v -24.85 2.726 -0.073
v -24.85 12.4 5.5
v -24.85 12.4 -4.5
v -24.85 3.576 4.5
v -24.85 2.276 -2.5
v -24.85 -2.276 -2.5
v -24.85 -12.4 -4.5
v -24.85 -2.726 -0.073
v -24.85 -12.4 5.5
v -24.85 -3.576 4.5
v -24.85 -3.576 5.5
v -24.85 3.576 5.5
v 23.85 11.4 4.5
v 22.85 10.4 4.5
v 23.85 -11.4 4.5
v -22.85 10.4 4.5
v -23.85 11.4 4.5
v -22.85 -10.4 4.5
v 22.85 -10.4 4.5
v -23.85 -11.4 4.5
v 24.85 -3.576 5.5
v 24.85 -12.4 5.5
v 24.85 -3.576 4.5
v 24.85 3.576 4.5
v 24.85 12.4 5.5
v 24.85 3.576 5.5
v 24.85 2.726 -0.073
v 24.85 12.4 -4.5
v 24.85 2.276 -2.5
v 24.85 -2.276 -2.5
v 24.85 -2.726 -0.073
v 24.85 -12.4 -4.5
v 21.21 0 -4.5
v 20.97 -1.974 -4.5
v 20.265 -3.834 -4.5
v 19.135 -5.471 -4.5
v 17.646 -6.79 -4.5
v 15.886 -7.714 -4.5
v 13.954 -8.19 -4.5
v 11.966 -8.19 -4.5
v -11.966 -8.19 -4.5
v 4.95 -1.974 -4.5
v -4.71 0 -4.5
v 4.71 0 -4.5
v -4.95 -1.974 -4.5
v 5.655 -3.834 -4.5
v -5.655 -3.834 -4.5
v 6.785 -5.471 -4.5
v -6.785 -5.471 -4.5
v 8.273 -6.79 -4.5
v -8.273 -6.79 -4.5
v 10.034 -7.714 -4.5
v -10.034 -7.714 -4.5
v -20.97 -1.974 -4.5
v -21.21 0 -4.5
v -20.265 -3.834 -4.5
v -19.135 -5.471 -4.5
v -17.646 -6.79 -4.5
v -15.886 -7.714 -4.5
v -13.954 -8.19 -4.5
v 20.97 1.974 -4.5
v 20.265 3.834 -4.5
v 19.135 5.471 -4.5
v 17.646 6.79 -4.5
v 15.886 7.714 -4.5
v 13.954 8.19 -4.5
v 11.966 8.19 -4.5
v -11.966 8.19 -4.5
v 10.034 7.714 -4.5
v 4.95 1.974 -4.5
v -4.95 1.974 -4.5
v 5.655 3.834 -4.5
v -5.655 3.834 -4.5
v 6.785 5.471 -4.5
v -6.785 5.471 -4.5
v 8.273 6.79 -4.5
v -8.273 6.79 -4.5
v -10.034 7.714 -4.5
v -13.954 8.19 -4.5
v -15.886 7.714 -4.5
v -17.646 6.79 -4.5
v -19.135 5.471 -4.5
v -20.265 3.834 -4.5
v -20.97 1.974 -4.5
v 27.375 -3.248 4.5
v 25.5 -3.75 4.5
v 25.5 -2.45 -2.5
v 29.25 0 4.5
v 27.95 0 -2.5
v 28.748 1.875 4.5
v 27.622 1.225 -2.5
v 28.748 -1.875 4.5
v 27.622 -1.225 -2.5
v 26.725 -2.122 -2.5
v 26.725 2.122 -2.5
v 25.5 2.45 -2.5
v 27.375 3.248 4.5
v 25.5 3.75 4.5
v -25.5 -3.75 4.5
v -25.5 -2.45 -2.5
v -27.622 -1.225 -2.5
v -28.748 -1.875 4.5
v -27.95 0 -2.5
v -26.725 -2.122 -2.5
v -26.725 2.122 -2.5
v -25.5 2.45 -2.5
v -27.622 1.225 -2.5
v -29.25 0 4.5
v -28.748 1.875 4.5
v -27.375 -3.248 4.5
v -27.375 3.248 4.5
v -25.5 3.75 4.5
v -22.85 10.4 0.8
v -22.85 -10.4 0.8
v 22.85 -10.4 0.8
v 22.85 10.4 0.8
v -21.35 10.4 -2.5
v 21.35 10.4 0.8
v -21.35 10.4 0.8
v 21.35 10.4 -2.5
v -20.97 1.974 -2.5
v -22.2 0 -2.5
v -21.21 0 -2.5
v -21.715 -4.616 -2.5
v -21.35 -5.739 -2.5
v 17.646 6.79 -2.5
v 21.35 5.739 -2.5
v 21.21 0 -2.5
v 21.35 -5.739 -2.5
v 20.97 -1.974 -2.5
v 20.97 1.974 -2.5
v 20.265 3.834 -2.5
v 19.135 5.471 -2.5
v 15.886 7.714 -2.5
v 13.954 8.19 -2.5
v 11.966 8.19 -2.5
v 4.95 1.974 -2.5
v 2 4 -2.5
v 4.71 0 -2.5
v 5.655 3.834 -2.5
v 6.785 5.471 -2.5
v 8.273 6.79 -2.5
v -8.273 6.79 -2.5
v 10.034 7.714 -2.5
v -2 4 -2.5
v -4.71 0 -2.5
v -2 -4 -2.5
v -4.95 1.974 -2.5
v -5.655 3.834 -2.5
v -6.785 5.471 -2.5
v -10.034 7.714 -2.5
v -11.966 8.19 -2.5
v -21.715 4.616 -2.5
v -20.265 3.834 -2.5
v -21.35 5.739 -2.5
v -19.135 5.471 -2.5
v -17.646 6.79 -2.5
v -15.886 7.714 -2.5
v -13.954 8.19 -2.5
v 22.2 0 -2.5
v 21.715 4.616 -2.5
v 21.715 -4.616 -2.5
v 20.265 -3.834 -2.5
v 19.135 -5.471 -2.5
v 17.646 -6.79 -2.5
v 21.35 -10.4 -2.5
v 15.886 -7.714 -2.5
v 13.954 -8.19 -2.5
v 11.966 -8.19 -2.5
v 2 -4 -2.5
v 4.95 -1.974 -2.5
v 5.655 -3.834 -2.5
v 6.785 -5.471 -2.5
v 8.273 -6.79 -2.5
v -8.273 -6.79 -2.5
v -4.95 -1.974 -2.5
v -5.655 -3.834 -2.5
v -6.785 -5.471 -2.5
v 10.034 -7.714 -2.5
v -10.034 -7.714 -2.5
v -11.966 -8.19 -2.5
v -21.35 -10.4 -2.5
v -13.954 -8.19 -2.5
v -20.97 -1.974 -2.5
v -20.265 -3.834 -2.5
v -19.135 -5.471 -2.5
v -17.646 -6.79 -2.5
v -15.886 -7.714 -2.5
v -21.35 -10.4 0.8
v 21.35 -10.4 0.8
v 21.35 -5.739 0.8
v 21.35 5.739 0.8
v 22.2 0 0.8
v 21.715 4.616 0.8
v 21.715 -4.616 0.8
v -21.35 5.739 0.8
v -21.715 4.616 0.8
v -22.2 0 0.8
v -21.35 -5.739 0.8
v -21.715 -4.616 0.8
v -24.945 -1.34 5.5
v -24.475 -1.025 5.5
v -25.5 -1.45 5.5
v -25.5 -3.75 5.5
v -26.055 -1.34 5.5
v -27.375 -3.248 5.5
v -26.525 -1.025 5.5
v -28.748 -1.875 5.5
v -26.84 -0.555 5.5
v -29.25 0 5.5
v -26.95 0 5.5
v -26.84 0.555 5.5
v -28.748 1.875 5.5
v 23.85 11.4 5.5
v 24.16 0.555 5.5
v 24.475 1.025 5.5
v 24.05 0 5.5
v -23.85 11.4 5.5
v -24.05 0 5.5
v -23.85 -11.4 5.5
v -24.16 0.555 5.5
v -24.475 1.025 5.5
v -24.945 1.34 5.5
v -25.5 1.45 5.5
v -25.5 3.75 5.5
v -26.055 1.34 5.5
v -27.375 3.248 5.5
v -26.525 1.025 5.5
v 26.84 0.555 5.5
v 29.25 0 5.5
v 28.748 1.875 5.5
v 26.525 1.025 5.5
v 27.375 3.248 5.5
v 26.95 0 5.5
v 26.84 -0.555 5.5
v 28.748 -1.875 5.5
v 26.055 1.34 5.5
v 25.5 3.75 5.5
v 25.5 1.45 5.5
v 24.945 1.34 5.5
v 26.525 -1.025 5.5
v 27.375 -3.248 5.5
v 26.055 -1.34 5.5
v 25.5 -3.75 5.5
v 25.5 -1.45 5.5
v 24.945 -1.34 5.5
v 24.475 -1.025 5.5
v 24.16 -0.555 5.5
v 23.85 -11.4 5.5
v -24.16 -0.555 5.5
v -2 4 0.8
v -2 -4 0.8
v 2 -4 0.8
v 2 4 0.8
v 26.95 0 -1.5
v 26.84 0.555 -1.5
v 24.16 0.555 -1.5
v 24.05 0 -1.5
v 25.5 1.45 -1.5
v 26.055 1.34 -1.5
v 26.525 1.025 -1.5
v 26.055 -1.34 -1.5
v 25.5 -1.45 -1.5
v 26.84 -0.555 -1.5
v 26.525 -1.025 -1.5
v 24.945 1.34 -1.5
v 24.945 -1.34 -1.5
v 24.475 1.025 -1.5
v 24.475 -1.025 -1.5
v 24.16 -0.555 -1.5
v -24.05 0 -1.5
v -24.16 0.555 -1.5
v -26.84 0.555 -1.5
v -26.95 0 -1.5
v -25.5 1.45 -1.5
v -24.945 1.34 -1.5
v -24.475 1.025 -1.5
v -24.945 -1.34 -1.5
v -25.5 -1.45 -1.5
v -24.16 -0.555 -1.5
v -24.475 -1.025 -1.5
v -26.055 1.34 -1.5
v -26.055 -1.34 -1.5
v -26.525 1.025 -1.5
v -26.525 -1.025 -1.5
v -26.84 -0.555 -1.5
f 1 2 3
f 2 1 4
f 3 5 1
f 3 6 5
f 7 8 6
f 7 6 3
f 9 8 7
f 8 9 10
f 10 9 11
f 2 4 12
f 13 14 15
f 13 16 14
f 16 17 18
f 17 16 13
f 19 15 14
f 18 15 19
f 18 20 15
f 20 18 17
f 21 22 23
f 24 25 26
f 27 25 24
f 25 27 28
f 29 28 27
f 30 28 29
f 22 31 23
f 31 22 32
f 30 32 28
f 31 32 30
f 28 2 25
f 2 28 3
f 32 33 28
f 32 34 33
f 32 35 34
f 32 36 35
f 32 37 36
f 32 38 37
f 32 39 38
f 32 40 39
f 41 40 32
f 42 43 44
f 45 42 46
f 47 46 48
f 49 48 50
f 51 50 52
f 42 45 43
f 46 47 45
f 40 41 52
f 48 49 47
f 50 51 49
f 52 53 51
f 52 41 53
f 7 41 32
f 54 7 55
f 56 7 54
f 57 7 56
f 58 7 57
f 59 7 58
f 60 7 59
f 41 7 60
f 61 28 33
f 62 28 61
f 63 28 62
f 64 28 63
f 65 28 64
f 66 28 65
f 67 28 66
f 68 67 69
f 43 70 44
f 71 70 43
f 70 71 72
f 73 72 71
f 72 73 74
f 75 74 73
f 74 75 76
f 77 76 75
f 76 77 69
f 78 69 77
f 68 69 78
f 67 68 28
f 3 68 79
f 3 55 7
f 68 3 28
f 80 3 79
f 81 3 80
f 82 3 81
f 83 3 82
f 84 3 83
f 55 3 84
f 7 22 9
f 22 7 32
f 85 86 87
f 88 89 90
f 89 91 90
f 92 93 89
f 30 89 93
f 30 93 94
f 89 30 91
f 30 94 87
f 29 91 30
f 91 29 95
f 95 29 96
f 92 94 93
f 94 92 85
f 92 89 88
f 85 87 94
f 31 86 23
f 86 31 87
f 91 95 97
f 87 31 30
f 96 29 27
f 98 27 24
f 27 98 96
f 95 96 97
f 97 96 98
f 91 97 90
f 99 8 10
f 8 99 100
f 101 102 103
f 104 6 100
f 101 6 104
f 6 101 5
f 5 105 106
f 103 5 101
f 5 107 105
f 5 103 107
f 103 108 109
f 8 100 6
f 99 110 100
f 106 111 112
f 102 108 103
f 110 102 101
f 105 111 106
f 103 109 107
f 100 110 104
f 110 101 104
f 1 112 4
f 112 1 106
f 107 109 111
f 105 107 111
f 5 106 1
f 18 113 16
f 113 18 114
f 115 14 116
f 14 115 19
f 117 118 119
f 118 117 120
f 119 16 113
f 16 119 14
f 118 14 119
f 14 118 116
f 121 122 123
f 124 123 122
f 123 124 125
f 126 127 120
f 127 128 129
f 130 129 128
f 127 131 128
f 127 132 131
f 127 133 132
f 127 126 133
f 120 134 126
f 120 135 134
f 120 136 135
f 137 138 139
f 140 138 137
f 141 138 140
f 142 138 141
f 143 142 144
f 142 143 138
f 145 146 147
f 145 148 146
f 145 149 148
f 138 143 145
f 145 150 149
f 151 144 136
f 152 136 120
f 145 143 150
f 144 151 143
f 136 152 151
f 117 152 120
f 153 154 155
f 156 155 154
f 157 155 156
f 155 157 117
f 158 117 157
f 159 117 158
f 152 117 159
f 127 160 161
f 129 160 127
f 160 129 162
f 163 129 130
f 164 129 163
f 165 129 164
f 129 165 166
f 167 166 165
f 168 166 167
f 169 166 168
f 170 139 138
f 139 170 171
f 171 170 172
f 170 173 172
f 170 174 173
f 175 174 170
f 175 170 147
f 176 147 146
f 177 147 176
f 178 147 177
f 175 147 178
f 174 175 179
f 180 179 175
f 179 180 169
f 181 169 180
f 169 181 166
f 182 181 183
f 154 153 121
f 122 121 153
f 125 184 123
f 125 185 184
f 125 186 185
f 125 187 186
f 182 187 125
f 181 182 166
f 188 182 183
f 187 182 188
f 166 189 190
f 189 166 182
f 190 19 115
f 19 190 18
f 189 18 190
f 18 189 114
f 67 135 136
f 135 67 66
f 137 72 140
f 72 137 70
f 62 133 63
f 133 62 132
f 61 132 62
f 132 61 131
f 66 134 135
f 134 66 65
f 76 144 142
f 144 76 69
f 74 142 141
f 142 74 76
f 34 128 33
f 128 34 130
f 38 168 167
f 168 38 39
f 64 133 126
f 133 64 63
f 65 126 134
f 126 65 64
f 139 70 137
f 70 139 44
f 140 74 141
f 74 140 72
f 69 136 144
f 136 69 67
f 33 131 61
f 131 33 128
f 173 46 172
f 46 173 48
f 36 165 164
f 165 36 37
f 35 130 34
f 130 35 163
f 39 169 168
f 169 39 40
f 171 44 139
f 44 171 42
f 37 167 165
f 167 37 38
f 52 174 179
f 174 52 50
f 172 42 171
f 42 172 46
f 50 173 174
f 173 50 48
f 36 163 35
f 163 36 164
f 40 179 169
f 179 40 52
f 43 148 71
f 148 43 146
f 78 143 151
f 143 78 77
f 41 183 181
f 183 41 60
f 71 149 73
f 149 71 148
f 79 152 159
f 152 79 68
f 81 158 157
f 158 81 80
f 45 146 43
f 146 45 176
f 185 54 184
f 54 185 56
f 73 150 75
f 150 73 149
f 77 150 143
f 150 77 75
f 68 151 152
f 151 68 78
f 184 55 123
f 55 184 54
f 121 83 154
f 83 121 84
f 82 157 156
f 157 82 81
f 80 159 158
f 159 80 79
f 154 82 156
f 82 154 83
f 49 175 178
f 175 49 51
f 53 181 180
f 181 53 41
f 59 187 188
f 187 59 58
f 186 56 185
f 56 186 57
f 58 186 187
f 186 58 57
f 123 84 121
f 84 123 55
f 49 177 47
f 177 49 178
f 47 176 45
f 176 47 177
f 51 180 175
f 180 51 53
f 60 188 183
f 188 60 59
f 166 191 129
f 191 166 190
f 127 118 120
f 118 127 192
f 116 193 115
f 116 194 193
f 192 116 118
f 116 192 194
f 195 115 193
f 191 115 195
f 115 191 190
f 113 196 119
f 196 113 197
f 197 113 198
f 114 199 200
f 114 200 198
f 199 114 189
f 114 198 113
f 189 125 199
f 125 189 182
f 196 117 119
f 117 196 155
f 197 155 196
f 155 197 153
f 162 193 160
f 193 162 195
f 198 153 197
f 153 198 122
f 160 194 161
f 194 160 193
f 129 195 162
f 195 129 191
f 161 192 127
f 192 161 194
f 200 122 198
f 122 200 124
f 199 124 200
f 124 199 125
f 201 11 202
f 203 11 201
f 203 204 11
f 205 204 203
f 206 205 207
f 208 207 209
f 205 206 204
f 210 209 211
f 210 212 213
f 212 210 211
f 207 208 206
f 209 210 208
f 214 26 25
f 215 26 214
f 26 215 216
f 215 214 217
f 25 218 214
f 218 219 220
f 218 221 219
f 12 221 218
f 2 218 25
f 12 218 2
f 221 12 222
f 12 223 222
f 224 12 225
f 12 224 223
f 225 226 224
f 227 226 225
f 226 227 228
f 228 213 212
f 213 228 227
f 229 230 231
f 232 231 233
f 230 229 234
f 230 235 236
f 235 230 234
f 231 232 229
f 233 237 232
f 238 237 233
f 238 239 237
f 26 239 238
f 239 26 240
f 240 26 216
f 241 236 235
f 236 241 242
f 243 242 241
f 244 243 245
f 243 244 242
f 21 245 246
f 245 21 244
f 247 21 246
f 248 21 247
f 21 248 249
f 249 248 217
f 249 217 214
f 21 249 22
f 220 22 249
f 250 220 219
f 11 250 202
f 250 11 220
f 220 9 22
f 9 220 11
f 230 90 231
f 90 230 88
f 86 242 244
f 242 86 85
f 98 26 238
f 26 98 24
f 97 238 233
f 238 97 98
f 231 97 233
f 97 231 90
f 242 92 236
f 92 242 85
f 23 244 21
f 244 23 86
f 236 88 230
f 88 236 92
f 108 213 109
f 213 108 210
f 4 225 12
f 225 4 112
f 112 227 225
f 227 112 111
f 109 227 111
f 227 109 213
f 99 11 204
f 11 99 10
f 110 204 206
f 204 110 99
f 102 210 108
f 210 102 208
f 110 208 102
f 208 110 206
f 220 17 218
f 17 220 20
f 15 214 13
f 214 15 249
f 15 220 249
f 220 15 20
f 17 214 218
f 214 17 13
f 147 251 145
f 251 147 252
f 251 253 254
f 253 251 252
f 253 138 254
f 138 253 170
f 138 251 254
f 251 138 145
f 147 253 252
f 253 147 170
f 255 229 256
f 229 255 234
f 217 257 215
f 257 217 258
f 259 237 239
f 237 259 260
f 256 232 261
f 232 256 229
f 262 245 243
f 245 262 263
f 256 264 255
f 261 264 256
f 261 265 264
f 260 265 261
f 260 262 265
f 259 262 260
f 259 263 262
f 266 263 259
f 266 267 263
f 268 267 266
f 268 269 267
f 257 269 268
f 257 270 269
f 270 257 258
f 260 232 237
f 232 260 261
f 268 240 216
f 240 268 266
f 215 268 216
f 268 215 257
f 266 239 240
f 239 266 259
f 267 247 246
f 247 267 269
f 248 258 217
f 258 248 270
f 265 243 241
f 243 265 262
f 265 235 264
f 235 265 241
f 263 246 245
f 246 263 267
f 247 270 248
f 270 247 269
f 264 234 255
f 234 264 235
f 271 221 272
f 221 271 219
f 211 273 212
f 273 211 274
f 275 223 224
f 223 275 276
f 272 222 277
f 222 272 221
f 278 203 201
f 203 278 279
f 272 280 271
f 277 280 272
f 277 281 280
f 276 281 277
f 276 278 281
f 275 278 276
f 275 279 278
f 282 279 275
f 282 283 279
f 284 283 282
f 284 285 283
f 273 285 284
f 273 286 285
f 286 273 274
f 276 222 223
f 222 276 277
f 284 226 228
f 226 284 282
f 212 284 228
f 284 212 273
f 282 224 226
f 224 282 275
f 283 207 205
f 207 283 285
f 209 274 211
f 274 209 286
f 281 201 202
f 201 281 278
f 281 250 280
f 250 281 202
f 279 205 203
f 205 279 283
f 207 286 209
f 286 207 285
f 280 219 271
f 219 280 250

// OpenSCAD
difference(){  
  union(){
    //Wanne mit Lautsprecherlöchern und Zylinder für Schraublöcher
    difference(){ //Cubus mit Zylindern für Schraublöcher
      union(){
        cube([49.7, 24.8, 9], center = true);
        //Zylinder für Schrauben ohne Mittelloch
        translate([ 25.5,0,1])cylinder(h=7, r1=2.45, r2=3.75, center = true);
        translate([-25.5,0,1])cylinder(h=7, r1=2.45, r2=3.75, center = true);
      }
      //Ausgeschnittener Cubus
      translate([0, 0, 1])cube([45.7, 20.8, 7], center = true);
      //Löcher für Lautsprecher
      translate([12.96,0,-3.5])cylinder(h = 2, d = 16.5, center = true);
      translate([-12.96,0,-3.5])cylinder(h = 2, d = 16.5, center = true);
    }
    
    //Eckerhöhungen
    translate([0,0, -1.2])difference(){ 
      union(){ // Eckbalken
        translate([ 22.1, 0, 0])cube([1.5, 20.8, 4], center = true);
        translate([-22.1, 0, 0])cube([1.5, 20.8, 4], center = true);
      }
      translate([0, 0, -3.9])cylinder(h = 9, r = 22.2); //Ausgeschnittener Kreis      
    }
    
    //Mittelbalken
    translate([0,0,-1.2])cube([4, 8, 4], center = true);
  

    
    //Falz
    translate([0,0,5])difference(){
      union(){
        cube([49.7, 24.8, 1], center = true);
        // Zylinder für Schrauben ohne Mittelloch
        translate([ 25.5,0,0])cylinder(h=1, r=3.75, center = true);
        translate([-25.5,0,0])cylinder(h=1, r=3.75, center = true);
      }
      cube([47.7, 22.8, 1], center = true);
    }
  }
  // Mittelloch in Zylinder für Schrauben
  translate([ 25.5,0,2])cylinder($fn=16, h=7, r=1.45, center = true);
  translate([-25.5,0,2])cylinder($fn=16, h=7, r=1.45, center = true);
  
}
